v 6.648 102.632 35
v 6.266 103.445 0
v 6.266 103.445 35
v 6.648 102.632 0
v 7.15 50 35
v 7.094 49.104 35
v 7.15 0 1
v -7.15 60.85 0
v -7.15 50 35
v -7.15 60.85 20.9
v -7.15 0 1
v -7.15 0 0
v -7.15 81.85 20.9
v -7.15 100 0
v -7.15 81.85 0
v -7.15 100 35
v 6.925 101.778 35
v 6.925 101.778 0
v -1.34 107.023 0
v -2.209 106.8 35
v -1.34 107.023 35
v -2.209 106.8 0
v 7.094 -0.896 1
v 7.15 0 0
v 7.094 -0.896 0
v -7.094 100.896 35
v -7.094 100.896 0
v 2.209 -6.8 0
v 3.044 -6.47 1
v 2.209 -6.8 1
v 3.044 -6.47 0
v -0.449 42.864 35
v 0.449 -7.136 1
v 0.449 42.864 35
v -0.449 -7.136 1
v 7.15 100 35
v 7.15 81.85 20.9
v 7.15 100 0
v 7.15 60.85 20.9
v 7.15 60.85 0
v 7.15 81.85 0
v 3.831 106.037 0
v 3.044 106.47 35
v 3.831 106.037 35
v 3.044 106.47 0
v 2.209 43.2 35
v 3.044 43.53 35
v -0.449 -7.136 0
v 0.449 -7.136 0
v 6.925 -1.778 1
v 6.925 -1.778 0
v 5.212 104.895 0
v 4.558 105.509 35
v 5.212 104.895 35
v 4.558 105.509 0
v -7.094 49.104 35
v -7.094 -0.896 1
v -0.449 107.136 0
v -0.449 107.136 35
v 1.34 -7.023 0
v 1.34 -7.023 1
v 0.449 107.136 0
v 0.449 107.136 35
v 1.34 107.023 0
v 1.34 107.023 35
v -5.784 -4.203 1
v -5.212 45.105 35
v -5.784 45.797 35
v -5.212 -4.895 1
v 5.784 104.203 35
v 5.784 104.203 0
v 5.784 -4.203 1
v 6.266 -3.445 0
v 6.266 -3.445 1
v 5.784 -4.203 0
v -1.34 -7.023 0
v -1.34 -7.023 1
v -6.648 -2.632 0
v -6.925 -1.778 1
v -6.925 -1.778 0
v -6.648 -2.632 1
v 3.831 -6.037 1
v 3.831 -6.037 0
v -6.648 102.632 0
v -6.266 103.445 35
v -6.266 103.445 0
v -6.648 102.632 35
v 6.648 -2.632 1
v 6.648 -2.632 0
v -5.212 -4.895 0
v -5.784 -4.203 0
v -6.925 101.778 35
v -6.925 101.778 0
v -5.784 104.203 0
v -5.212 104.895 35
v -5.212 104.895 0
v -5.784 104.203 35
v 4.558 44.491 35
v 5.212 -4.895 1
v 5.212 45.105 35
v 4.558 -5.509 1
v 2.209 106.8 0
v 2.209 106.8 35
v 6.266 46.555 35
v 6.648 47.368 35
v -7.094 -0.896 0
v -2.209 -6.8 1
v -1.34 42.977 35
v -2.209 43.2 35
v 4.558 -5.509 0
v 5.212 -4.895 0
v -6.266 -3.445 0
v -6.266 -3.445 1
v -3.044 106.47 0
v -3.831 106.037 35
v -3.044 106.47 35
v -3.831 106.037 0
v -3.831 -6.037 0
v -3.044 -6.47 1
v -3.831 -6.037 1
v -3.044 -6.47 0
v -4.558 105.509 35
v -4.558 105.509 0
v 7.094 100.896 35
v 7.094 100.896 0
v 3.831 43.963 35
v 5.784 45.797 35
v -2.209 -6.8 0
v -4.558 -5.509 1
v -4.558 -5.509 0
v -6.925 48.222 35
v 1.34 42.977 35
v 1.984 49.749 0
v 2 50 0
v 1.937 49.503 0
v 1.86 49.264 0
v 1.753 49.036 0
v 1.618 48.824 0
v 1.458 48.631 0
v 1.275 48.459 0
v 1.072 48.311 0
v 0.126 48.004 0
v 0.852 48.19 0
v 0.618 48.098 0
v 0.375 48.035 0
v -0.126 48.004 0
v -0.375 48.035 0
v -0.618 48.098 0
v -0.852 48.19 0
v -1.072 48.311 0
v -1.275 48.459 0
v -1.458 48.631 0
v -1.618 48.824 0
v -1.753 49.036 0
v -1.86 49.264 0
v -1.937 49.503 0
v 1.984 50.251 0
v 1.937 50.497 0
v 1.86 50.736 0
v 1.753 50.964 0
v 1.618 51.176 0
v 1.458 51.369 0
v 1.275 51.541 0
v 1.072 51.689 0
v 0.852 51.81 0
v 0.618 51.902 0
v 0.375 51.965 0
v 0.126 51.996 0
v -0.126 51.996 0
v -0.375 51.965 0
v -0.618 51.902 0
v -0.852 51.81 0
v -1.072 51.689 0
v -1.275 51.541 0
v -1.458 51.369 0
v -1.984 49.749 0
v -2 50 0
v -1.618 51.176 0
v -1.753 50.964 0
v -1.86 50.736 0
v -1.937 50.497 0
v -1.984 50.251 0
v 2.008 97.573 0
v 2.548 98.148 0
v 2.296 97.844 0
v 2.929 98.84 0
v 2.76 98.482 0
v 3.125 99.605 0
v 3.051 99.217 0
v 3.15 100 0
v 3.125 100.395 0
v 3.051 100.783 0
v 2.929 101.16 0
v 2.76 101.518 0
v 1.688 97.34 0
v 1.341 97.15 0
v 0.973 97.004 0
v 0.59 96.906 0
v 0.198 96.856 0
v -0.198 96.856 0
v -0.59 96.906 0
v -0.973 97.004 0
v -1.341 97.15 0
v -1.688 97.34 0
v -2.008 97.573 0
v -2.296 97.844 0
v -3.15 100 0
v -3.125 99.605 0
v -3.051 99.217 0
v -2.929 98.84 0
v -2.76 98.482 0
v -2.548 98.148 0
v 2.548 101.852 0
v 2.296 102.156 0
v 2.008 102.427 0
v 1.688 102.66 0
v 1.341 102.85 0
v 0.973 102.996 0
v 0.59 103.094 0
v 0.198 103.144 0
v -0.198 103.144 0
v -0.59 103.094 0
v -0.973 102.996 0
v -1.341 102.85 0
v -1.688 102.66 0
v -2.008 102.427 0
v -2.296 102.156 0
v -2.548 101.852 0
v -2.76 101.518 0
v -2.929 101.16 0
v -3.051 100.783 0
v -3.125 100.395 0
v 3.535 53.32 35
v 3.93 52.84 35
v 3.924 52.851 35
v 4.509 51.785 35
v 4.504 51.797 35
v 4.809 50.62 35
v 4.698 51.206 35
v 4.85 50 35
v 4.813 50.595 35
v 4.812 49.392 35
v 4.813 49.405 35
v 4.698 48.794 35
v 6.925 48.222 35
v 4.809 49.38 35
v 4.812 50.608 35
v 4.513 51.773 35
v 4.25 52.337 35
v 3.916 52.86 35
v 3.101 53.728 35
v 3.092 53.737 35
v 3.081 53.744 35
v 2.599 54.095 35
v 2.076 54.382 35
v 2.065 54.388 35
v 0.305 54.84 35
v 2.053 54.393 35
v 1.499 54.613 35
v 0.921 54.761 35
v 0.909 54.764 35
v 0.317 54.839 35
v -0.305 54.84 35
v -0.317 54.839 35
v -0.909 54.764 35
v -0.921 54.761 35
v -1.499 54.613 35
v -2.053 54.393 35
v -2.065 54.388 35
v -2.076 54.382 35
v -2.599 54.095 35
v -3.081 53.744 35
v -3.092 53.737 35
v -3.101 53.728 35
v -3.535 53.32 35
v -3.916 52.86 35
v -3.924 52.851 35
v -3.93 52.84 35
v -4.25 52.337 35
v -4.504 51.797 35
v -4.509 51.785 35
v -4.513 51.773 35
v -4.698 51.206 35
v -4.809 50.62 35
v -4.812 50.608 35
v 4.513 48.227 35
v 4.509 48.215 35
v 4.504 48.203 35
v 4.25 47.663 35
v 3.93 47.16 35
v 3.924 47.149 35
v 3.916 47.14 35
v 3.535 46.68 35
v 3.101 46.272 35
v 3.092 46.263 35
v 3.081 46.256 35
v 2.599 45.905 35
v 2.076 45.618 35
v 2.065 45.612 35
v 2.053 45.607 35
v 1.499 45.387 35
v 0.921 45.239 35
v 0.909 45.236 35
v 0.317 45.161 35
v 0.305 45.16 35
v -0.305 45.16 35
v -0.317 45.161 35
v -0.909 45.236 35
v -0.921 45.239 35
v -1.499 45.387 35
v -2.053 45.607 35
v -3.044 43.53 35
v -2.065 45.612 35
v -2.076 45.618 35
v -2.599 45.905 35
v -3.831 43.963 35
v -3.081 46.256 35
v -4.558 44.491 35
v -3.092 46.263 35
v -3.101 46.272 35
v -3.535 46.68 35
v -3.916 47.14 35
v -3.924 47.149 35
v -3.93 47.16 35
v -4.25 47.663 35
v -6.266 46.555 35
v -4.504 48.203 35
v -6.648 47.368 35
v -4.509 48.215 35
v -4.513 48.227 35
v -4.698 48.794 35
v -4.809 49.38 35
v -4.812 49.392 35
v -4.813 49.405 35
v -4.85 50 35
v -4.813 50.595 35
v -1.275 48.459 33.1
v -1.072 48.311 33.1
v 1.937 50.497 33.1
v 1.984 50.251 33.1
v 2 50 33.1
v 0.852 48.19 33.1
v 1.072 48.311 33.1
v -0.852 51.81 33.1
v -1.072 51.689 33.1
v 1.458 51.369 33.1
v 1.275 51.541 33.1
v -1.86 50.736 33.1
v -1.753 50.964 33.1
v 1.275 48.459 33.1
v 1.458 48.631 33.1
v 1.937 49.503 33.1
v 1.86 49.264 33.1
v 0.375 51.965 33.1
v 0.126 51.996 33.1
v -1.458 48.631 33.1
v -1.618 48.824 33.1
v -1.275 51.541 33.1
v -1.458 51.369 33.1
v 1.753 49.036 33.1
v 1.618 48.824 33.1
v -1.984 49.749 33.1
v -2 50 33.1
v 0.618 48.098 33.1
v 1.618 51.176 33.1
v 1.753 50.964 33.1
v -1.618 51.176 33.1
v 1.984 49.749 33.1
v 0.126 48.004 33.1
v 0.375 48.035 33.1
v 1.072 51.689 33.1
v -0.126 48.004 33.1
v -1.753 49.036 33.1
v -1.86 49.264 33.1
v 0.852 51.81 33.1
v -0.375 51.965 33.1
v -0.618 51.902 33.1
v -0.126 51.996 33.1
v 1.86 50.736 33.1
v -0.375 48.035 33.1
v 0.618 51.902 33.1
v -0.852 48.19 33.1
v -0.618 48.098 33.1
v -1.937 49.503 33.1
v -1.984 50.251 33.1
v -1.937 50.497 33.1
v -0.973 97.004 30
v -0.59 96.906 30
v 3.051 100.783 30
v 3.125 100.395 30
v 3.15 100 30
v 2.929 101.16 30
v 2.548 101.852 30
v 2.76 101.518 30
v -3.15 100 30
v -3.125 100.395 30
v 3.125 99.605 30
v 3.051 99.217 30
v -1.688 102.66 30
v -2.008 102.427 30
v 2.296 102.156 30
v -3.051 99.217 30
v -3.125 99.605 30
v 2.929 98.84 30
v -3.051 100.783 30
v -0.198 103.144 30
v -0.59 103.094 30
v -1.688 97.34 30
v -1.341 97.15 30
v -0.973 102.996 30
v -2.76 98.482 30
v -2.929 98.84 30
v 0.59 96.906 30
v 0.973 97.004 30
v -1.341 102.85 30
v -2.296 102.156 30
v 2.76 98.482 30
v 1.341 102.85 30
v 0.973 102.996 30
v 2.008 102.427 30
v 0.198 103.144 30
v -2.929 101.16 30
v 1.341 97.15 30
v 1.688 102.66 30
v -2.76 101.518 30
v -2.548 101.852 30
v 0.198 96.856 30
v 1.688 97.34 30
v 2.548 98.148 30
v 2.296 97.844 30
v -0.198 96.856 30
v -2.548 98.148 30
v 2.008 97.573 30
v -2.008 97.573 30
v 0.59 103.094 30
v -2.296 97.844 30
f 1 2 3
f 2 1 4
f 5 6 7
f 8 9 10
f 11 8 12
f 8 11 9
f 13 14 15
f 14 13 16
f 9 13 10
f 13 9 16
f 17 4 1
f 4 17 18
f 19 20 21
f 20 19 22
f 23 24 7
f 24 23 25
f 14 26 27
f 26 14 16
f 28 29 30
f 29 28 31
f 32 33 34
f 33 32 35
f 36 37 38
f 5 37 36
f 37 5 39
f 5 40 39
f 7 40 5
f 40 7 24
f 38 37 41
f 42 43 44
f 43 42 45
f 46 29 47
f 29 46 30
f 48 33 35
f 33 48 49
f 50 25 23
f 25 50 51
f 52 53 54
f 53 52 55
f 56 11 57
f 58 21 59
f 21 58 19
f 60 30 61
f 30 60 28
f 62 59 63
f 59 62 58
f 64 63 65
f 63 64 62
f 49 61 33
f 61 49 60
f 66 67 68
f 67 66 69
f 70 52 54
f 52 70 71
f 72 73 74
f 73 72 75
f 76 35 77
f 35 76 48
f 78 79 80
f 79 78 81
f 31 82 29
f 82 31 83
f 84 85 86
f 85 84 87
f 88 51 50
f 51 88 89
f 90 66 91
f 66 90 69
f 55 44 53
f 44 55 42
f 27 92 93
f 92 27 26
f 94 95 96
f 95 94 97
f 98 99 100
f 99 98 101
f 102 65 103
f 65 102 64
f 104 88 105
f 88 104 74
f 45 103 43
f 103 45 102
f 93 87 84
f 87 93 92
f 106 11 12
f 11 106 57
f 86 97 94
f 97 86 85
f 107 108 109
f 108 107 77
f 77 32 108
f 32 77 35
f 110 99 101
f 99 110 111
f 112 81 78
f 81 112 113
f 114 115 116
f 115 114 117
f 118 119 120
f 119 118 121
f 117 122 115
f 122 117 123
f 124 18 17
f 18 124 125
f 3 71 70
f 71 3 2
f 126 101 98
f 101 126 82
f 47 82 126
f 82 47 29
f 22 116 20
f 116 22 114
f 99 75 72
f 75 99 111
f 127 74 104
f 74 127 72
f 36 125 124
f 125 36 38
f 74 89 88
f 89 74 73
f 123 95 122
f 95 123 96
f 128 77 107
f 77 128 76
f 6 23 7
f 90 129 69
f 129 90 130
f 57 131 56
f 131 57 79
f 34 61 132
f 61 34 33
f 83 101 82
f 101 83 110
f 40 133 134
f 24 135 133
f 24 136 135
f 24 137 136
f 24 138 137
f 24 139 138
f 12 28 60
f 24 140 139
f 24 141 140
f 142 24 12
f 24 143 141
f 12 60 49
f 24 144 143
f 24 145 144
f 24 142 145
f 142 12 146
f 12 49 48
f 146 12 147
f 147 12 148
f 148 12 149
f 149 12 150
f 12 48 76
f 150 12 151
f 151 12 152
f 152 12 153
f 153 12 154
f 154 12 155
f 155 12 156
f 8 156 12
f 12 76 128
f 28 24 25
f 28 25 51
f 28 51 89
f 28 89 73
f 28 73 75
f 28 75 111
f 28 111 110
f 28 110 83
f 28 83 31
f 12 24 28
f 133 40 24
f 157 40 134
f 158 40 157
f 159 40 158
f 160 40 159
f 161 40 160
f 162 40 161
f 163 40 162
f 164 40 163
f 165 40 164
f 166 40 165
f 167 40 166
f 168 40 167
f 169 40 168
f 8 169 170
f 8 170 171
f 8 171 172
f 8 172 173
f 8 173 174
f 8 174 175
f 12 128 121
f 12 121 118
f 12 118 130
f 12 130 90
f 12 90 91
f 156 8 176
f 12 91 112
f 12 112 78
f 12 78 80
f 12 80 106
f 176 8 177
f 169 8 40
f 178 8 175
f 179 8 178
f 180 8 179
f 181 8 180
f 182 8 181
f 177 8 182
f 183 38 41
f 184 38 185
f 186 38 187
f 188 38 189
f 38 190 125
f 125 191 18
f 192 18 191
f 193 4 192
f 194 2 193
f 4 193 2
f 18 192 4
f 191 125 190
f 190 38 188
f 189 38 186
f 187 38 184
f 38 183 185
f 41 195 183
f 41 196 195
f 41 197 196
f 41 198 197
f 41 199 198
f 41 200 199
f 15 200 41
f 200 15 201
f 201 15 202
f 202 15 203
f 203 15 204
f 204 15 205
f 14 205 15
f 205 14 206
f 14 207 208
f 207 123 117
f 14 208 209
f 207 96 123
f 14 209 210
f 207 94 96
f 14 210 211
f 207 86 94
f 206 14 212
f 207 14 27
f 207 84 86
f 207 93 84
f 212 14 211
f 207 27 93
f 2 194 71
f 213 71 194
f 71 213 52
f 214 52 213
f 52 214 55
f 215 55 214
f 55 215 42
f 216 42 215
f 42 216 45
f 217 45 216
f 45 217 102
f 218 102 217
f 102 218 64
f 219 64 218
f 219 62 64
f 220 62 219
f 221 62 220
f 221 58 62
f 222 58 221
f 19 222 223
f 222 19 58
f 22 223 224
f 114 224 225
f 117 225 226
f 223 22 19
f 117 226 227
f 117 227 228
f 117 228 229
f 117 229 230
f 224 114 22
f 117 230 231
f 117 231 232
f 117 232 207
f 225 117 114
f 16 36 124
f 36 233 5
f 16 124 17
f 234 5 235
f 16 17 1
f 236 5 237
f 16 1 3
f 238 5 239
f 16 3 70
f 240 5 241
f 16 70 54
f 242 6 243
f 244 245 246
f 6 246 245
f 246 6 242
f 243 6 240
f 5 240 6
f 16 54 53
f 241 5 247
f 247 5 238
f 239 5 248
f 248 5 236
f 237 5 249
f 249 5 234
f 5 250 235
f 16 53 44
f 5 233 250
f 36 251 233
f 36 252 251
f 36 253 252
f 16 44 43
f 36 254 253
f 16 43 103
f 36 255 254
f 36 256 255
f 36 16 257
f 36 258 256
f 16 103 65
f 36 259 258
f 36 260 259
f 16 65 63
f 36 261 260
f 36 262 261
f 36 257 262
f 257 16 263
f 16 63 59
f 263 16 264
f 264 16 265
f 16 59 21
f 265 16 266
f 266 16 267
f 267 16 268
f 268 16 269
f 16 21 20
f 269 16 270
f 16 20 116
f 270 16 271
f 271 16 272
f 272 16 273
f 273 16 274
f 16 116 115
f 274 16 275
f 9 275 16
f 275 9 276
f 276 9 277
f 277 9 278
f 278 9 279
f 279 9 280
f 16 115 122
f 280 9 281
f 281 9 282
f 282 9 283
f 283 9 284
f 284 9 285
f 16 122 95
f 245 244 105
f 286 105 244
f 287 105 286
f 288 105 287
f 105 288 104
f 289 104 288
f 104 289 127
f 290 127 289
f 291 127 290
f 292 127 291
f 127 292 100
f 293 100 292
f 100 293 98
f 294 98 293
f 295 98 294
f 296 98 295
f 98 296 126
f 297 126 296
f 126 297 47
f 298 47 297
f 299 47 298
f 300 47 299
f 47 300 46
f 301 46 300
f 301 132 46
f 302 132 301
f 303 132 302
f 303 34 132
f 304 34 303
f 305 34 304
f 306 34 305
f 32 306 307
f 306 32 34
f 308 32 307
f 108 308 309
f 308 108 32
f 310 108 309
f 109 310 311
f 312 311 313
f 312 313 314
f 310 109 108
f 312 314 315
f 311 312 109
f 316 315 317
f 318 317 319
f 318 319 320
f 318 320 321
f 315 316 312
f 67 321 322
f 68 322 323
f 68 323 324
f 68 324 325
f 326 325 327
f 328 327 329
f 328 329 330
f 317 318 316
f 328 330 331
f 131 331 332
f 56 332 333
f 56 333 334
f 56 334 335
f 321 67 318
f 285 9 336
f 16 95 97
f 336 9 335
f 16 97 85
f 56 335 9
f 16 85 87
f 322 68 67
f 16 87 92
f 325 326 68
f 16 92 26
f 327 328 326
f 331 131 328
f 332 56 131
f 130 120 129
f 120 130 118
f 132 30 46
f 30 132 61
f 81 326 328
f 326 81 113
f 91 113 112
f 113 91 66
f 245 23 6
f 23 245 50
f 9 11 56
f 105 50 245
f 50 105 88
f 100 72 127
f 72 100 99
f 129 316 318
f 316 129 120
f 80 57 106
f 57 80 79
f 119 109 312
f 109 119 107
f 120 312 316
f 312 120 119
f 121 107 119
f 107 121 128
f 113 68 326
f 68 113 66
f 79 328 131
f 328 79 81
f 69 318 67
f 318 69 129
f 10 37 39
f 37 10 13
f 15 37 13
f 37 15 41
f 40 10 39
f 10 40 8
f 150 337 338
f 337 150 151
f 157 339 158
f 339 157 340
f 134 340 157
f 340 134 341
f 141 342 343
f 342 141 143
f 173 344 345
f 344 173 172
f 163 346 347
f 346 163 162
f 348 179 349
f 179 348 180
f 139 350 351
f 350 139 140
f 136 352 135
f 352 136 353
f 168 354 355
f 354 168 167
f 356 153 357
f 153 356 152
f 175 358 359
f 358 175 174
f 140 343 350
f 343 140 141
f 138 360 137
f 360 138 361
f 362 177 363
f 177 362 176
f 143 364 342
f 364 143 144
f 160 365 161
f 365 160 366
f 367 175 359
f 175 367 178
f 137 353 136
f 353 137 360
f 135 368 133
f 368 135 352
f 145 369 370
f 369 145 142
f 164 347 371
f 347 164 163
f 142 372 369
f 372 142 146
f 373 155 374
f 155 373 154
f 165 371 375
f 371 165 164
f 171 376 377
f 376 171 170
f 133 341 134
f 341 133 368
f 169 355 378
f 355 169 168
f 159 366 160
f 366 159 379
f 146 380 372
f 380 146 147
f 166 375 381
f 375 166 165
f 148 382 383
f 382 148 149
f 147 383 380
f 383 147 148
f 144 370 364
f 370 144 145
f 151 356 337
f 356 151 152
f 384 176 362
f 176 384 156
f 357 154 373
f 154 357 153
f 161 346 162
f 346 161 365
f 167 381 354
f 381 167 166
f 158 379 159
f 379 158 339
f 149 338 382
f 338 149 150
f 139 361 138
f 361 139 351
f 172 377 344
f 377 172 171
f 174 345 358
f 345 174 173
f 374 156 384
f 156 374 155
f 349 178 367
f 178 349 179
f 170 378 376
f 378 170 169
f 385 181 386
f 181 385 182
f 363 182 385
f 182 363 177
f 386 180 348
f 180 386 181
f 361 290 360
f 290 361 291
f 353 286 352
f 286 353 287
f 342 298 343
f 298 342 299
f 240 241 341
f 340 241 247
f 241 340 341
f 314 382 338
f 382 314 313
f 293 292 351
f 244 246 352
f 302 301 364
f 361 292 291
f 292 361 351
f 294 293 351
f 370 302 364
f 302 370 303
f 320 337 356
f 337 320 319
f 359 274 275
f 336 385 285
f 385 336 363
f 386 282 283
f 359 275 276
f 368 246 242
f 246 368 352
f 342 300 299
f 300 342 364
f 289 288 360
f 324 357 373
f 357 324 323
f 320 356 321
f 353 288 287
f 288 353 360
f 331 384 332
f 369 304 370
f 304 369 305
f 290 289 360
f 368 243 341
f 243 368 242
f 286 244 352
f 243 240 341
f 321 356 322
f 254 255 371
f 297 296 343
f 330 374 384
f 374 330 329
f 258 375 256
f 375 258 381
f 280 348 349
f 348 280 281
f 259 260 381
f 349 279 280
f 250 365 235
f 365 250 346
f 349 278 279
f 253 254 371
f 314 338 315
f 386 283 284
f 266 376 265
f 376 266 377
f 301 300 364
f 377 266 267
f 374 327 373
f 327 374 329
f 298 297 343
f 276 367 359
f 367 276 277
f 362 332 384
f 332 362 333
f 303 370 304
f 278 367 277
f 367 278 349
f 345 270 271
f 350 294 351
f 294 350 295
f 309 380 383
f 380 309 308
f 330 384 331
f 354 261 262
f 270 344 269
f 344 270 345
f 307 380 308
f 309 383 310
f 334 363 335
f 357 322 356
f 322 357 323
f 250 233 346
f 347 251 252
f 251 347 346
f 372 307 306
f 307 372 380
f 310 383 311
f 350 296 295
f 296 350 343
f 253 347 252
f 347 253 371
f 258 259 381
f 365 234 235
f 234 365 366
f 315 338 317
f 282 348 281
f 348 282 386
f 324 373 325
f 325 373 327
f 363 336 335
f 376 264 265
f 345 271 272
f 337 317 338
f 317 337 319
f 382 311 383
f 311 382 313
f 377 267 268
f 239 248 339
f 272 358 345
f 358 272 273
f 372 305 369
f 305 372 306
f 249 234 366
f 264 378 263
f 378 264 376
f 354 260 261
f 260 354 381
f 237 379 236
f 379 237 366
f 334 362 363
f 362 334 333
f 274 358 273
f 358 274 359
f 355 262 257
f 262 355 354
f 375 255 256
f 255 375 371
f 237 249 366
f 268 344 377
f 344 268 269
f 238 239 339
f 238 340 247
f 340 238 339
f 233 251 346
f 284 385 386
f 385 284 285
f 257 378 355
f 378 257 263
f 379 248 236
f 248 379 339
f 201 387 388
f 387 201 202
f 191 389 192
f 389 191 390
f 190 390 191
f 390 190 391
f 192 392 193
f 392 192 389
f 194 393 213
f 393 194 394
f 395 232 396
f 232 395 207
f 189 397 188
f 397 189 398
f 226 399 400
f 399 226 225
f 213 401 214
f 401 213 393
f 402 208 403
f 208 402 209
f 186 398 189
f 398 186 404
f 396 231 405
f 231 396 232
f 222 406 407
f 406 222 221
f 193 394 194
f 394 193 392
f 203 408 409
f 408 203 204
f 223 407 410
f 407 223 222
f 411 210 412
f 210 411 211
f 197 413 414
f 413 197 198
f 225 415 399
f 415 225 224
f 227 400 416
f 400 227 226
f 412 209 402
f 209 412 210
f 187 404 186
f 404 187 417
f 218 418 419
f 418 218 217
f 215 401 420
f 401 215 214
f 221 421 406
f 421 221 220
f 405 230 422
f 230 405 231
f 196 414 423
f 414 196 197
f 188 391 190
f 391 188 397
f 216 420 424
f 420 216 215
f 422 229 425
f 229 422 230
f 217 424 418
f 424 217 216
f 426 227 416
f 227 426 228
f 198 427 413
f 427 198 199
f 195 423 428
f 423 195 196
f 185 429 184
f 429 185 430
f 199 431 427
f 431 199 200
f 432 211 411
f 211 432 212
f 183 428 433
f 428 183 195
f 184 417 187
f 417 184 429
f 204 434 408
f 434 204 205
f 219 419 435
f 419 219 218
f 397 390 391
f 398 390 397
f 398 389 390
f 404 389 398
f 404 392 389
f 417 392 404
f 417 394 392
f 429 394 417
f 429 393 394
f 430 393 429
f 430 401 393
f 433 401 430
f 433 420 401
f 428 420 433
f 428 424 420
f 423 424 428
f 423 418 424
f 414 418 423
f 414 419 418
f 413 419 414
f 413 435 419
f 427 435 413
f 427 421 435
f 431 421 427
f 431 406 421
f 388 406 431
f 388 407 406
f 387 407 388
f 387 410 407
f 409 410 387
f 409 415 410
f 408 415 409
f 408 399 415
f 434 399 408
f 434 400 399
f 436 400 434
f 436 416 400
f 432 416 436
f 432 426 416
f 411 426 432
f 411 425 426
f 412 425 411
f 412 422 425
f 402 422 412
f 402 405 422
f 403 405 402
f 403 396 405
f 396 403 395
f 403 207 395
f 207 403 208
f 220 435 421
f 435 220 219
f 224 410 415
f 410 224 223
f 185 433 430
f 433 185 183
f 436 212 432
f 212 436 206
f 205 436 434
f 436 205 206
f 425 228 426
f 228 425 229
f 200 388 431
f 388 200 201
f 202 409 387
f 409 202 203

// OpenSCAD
$fn = 50;
$post_r = 6.3/2;

$height = 35;
$depth   = 100;
$curve_r = $post_r + 4;
$screw_r = 2;
$cut     = 21;

//15mm from cut to hole edge

//offset made from real world measurements and validation with scaffolds
$offset = $depth-$post_r-15;



translate([10,0,0]){
    //cube([10,$offset,1]);
}
translate([10,0,0]){
    //cube([10,$offset-$cut+15,1]);
}

difference(){
    //shape
    hull(){
    translate([0, $depth, 0]){
        cylinder($height, $curve_r, $curve_r);
    }
    translate([0, $depth/2, 0]){
        cylinder($height, $curve_r, $curve_r);
    }
    cylinder(1, $curve_r, $curve_r);
    }

    //frame cut
    translate([-$curve_r-.1, $offset-$cut, -.1]){
        cube([($curve_r+1)*2, $cut, $cut]);
    }
    
    //screw cut
    translate([0, $depth/2, -1]){
        cylinder(3*$height, $screw_r, $screw_r);
    }
    translate([0, $depth/2, $height-($screw_r)+.1]){
        cylinder($screw_r, $screw_r, 2.5*$screw_r);
    }
    
    //post cut
    translate([0, $depth, -5]){
        cylinder($height, $post_r, $post_r);
    }
}
